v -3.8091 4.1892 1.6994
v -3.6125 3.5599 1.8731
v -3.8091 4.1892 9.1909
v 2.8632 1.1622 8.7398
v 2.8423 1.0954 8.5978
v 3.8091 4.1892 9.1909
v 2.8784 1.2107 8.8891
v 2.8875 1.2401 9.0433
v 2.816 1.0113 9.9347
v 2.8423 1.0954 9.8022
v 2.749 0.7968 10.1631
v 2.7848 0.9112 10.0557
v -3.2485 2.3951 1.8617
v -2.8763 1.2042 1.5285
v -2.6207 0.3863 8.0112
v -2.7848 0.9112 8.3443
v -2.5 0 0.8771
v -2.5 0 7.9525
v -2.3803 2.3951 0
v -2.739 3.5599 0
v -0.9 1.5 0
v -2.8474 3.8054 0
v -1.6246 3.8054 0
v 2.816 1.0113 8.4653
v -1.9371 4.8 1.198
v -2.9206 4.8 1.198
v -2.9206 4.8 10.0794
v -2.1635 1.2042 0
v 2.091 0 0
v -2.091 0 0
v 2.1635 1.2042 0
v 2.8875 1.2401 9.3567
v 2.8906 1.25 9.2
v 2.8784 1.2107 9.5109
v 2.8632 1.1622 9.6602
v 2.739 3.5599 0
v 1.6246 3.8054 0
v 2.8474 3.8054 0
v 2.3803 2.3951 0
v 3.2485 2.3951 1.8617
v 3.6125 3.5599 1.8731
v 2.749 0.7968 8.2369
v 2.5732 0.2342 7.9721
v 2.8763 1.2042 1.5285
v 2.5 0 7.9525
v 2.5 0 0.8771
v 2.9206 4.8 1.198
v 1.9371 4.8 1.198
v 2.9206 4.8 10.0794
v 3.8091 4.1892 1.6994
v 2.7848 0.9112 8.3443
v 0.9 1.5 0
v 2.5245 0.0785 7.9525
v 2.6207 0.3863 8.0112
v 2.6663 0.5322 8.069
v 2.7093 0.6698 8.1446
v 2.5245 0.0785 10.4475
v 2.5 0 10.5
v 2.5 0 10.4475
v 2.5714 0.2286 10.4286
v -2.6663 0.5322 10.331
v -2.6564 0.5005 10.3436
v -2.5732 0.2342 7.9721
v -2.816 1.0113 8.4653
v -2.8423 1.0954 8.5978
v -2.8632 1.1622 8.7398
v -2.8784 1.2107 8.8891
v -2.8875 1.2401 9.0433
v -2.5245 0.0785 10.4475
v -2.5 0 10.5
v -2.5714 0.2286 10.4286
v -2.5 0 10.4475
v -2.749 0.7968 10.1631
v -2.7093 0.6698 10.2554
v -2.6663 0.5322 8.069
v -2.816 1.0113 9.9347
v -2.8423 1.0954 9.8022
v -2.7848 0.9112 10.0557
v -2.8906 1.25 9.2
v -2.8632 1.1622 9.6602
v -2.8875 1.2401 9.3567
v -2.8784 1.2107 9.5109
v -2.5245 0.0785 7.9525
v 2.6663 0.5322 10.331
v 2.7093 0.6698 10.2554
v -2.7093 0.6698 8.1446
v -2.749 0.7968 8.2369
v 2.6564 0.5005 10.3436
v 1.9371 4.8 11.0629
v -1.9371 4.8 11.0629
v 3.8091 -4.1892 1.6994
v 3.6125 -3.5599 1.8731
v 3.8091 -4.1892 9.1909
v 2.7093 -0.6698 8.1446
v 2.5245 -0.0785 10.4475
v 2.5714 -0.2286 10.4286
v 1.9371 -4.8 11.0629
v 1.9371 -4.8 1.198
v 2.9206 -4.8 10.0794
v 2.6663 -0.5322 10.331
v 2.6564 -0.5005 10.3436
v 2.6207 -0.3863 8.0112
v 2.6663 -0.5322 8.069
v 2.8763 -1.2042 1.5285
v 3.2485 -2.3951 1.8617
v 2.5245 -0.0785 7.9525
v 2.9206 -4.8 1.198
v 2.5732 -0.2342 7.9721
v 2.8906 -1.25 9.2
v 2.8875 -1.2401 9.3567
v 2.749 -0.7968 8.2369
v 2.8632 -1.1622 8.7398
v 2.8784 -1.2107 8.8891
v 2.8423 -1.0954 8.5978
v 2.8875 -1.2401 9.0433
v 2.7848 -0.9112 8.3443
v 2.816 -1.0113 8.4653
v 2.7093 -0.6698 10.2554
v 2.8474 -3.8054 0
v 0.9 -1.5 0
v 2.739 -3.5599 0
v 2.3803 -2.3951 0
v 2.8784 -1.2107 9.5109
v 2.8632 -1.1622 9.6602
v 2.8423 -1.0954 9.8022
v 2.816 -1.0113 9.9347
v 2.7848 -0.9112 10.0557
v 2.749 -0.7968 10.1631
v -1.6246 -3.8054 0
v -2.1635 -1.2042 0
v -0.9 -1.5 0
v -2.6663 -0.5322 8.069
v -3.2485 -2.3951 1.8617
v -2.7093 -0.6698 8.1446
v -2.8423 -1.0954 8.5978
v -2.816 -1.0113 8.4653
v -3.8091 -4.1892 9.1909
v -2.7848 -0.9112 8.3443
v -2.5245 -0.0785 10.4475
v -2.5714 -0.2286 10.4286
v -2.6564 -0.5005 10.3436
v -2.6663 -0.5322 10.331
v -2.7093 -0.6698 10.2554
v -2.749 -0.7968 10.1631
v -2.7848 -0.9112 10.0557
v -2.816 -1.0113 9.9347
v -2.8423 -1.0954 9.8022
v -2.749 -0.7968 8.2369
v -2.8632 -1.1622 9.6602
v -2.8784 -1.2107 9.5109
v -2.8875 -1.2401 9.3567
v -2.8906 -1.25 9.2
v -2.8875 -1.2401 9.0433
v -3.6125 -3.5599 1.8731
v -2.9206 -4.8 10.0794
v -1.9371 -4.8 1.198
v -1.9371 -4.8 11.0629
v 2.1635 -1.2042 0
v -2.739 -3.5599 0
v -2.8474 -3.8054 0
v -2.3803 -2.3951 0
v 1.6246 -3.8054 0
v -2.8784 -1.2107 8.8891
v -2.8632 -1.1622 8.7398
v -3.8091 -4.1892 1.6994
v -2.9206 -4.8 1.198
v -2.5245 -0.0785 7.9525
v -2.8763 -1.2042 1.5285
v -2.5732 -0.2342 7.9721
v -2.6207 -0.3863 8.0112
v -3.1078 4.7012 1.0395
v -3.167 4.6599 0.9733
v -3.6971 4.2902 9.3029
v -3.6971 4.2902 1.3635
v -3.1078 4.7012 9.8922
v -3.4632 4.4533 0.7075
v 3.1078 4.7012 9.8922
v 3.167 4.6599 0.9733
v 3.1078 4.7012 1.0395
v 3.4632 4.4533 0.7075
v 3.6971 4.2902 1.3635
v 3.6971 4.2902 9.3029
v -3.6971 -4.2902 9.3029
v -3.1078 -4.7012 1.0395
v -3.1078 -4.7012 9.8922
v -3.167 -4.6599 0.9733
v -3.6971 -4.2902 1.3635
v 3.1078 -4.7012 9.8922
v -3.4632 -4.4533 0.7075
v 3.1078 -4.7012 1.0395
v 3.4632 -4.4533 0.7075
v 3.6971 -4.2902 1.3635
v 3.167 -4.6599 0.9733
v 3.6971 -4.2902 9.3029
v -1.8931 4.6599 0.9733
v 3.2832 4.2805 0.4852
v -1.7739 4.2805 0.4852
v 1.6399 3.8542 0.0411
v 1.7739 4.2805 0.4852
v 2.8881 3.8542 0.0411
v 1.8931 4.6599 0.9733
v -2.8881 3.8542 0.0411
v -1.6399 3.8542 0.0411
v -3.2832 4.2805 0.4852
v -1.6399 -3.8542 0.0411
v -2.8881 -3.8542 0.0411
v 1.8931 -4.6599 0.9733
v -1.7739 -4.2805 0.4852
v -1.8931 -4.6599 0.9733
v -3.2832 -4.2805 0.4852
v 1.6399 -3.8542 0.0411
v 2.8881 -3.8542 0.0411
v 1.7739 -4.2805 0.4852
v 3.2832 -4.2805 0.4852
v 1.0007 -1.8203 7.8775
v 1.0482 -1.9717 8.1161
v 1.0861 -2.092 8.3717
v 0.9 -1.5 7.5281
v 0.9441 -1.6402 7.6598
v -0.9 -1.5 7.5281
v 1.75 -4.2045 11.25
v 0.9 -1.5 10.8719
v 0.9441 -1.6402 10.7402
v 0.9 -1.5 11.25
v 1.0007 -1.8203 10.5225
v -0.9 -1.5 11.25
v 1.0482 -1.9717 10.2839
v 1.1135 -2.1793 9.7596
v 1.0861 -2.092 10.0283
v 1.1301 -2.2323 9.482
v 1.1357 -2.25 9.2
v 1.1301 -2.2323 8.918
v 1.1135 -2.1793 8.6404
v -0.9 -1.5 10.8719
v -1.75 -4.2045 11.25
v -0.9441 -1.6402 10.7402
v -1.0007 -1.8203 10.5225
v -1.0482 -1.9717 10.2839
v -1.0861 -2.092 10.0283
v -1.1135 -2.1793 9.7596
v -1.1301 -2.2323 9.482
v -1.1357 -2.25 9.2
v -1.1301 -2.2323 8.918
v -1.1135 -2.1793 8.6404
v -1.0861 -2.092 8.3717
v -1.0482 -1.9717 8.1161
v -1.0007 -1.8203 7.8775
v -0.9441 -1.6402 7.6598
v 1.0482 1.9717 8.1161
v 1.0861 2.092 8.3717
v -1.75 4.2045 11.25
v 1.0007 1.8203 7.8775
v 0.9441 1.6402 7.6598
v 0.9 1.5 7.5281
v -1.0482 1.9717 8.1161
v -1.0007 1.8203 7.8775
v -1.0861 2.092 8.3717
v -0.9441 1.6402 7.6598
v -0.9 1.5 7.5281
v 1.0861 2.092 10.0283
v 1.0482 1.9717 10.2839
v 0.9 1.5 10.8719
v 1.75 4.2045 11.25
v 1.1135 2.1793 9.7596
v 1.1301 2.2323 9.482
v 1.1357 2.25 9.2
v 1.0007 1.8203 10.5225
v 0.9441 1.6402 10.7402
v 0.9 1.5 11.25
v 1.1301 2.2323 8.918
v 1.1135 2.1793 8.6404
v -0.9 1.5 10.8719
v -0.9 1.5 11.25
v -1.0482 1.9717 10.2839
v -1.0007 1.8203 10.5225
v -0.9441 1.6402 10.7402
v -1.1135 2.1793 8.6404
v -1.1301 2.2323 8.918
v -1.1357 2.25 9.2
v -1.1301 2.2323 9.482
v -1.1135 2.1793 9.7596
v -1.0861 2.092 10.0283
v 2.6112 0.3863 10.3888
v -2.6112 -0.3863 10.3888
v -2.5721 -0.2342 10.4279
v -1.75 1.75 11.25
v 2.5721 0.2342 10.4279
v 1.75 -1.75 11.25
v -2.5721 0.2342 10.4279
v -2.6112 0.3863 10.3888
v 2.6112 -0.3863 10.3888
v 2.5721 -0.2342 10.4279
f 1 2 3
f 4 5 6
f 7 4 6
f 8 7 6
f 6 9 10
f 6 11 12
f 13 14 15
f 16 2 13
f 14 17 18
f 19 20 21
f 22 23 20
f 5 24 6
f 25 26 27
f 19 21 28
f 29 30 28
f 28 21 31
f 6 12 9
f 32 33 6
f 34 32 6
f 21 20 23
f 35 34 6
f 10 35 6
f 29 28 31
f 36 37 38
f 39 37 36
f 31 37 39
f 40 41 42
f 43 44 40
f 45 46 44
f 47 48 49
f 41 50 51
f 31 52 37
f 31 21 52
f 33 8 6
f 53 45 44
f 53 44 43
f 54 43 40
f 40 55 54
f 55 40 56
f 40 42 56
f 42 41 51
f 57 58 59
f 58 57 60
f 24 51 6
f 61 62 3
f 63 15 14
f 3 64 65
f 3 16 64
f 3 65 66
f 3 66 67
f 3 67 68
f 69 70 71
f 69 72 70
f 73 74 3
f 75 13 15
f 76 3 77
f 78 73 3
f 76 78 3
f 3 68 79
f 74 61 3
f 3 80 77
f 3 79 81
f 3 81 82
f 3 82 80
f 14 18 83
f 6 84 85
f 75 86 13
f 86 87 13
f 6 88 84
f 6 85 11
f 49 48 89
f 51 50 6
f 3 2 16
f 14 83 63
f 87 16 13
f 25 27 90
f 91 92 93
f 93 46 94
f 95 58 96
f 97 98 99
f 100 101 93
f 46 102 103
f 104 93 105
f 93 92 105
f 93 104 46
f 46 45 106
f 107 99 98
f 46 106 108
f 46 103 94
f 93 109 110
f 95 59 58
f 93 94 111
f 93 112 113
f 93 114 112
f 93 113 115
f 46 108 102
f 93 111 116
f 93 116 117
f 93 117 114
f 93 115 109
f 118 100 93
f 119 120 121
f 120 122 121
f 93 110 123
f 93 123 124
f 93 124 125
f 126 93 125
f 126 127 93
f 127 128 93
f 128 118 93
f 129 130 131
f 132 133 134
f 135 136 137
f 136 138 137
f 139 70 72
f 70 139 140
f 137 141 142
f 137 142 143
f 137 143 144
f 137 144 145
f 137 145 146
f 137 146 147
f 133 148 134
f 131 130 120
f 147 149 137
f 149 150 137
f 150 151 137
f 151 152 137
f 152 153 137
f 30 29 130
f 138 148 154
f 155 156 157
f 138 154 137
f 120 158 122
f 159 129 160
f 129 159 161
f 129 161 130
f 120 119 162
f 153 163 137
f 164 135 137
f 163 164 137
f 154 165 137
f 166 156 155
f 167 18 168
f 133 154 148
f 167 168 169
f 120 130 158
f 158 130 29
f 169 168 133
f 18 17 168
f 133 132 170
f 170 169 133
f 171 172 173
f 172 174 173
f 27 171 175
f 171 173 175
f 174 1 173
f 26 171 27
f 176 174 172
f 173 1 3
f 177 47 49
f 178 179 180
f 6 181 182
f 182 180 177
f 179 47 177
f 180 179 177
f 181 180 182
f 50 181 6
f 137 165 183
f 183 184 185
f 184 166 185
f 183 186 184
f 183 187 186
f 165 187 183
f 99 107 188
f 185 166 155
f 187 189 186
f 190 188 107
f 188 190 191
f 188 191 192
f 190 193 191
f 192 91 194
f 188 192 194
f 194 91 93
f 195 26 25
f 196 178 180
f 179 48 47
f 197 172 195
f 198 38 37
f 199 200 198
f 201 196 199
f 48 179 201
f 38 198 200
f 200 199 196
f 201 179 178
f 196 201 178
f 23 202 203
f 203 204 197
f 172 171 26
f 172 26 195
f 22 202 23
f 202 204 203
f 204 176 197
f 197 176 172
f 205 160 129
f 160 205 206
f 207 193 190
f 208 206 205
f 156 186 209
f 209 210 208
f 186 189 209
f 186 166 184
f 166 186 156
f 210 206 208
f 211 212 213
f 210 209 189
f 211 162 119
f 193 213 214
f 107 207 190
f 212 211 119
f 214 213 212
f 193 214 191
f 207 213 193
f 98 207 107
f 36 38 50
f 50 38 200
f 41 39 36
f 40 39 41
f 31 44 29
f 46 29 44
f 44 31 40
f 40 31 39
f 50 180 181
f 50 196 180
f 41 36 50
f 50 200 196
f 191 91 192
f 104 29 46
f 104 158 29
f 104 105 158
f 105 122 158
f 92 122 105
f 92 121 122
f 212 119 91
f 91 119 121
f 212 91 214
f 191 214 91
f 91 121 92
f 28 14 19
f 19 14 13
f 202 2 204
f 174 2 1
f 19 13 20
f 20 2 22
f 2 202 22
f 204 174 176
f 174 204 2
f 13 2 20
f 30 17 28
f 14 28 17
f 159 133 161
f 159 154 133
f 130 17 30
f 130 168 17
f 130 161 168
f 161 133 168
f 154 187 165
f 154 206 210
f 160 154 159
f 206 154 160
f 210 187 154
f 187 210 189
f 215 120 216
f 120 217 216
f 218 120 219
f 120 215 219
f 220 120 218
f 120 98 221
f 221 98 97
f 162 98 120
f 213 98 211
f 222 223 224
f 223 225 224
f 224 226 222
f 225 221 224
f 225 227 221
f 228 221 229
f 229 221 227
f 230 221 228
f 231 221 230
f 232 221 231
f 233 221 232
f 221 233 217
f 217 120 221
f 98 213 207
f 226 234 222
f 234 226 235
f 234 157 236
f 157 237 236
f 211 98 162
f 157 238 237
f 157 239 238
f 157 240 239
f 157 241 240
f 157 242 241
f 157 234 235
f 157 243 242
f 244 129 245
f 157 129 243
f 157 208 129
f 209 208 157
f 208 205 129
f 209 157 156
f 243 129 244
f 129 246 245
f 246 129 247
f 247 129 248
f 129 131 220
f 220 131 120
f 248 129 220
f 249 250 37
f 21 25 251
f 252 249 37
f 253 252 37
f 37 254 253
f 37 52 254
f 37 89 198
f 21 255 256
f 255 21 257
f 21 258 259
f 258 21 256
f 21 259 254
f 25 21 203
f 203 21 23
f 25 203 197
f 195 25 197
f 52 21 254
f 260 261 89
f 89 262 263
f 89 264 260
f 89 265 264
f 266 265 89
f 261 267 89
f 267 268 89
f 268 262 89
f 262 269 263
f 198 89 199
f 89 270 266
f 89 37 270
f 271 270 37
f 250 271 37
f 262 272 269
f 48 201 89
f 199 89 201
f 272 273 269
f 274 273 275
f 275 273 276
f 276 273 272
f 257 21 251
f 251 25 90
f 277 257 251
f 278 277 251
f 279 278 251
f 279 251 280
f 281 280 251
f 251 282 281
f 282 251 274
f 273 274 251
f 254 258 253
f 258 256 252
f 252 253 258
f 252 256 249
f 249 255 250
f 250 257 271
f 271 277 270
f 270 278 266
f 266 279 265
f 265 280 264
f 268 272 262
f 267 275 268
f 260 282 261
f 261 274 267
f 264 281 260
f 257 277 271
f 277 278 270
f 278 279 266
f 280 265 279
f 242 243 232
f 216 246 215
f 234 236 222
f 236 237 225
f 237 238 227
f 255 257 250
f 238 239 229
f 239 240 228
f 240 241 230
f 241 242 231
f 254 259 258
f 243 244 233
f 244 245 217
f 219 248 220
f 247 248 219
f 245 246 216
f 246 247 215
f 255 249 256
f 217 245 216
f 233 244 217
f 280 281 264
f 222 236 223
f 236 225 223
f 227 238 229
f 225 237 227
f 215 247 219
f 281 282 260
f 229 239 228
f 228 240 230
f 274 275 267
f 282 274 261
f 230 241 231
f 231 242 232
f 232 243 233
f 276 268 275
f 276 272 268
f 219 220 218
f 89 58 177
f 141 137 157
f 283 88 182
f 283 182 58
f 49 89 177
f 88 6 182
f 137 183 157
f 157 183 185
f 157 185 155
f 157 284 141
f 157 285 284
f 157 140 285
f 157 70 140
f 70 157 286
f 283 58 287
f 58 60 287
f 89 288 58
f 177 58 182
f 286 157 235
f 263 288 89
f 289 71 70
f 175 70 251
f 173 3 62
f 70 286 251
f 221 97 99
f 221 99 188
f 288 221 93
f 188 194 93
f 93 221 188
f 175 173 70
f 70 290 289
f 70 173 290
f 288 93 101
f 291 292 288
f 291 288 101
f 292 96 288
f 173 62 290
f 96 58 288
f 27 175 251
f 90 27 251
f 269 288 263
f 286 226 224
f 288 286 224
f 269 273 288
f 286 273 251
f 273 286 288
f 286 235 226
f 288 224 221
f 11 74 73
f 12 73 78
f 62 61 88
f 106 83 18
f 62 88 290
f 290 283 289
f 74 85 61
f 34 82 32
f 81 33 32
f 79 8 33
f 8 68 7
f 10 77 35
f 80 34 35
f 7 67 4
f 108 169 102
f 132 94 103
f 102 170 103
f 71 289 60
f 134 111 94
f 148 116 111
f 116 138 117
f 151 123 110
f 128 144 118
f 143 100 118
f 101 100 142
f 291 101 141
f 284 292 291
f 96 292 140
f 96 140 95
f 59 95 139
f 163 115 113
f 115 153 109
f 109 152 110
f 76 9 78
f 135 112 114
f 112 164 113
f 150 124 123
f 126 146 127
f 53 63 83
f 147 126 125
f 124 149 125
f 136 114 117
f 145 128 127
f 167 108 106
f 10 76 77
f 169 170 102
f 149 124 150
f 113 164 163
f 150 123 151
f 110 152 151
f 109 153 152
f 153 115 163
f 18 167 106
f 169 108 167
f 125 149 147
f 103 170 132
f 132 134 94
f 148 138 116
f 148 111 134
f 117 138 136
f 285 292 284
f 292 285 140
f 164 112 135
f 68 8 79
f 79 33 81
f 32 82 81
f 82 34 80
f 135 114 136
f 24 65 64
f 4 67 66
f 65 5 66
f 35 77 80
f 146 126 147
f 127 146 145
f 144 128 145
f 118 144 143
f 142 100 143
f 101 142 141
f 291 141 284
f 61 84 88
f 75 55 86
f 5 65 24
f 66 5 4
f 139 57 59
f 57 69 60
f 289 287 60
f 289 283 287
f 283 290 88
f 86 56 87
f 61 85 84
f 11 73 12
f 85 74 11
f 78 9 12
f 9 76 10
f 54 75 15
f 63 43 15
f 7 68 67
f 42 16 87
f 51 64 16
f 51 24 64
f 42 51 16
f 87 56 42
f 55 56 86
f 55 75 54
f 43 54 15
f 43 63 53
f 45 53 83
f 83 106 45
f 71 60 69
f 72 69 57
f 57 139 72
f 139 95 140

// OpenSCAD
// file: long_bow_tie.scad
tilt_level = 1.1;

include <include.scad>;
include <globals.scad>;

obj_leg = 12;

function scale_x() = 1;
function scale_z() = (male_dove_depth-0.2)/male_dove_depth;

length = 50;

// shifts the upper dove to right
_offset = 0;


//long_bow_tie();
//long_bow_tie(25);

//long_bow_tie_half(length);
//long_bow_tie_half(30);
//long_bow_tie_half_split(length);

long_bow_tie_split(length);
//long_bow_tie_split(30);



module bow_tie_master(length){
    dovetail_3d(
        male_dove_max_width,
        male_dove_min_width,
        male_dove_depth,
        length
    );
}

module long_bow_tie_unscaled(length) {

    module endcyl() {
        translate([0, 0, -3])
        cylinder(d=24, h=6, $fn=60);
    }

    module endtub() {
        rotate([0, 90, 0])
        translate([0, 0, -15/2])
        difference() {
            cylinder(d=20, h=15, $fn=60);
            cylinder(d=12, h=16, $fn=60);

            translate([-20, 0, -0.1])
            cube([40, 20, 16]);
        }
    }

    module _half() {

        translate([0, length/2, 0])
        difference() {
            intersection(){
                rotate([90, 0, 0])
                bow_tie_master(length);

                rotate([90, 0, 0])
                cylinder(r=5.8, h=length * 2);
            }
            translate([13, 5, 0])
            rotate([90, 0, 25])
            endcyl();

            translate([-13, 5, 0])
            rotate([90, 0, -25])
            endcyl();

            translate([13, -length - 5, 0])
            rotate([90, 0, -25])
            endcyl();

            translate([-13, -length - 5, 0])
            rotate([90, 0, 25])
            endcyl();

            translate([0, -length + 4.5, 0])
            endtub();

            translate([0, -4.5, 0])
            rotate([180, 0, 0])
            endtub();
        }
    }

    union() {
        translate([_offset, 0, 0])
        _half();

        mirror([0, 0, 1])
        _half();
    }
}

module long_bow_tie(
    length=length, scale_x=scale_x(), 
    scale_z=scale_z(), middle=false) {

    scale([scale_x, 1, scale_z]) {
        if(middle) {
            long_bow_tie_unscaled(length);
        } else {
            translate([0, 0, male_dove_depth])
            long_bow_tie_unscaled(length);
        }
    }
}

module split(length) {
    translate([0, 0, -length/2 - 1])
    linear_extrude(height=length + 2)
    polygon(points=[
        [0, -1.5], [0.9, -1.5], [2, -5],
        [-2, -5], [-0.9, -1.5]
    ]);
}

module long_bow_tie_split(
    length=length, scale_x=scale_x(),
    scale_z=scale_z(), middle=false
) {

    module _do_split() {
        rotate([90, 0, 0])
        difference() {
            rotate([-90, 0, 0])
            long_bow_tie(
                length, scale_x=scale_x,
                scale_z=scale_z, middle=true);

            split(length);

            translate([_offset, 0, 0])
            rotate([0, 0, 180])
            split(length);
        }
    }
        
    if (!middle) {
        translate([0, 0, scale_z * male_dove_depth])
        _do_split();
    } else {
        _do_split();
    }
}

module long_bow_tie_half(
    length=length, scale_x=scale_x(),
    scale_z=scale_z(), middle=true) {

    rotate([0, -90, 0])
    intersection() {
        long_bow_tie(length, middle=middle);

        translate([0, -length/2, -24/2])
        chamfered_cube(
            13, length, 24, 1
        );
    }
}

module long_bow_tie_half_split(
    length=length, scale_x=scale_x(),
    scale_z=scale_z()) {

    union() {
        intersection() {
            long_bow_tie_split(length,
                scale_x=scale_x,
                scale_z=scale_z,
                middle=true);
            translate([0, 0, -6/2])
            cube([10, length, 6], center=true);
        }
        cube([scale_x*male_dove_min_width, length,
              1.6], center=true);

        translate([((scale_x*male_dove_min_width)/2)/2, 0, 4/2])
        cube([(scale_x*male_dove_min_width)/2, length,
              4], center=true);

        translate([0, 0, 4])
        intersection() {
            long_bow_tie(
                length,scale_x=scale_x, scale_z=scale_z,
                middle=true);

            translate([5/2, 0, 5/2])
            cube([5, length, 5], center=true);
        }
    }
}
// file: globals.scad
/*
Most things in this file is represented as one millimeter, so keep that in mind while changing things.
Some of the setting are not mm but at variables that you can set, such as 2*x=2x and you are setting what x is.
I will try to specify when things are variables and not exact measurements.
*/

// printer slop
slop = 0.15;

obj_leg = 30;
leg_length = 5.5;
small_number = 0.001;
metal_core_rode_global = 5;


///////////////// number of holes /////////////////////
z_hole_number = 8;
other_holes = 8;

///////////////// Pins /////////////////////

//pins that poke out
ball_size = 10;
pin_height = 20;
pin_diameter = 6;


//holes
hole_ball_size = ball_size;
hole_pin_height = pin_height;
hole_pin_diameter = pin_diameter;

///////////////// Z THINGS /////////////////////

berring_slot_width = 7.5;
berring_slot_depth = 6.5;
metal_core_rode = 5;

///////////////// X THINGS /////////////////////

//male dove tails
male_dove_max_width=8;
male_dove_min_width=5;
male_dove_depth=5;
male_dove_height=obj_leg/2;

function scaled_male_dove_max_width() = male_dove_max_width - slop;
function scaled_male_dove_min_width() = male_dove_min_width - slop;
function scaled_male_dove_depth() = male_dove_depth - slop;

//female dove tails, this is found on the y mounts
girl_max_width=11;
girl_min_width=5;
girl_depth=5;
girl_height=obj_leg;


///////////////// Y THINGS /////////////////////
/*
The Y is so normal that all of those global variables at the top should change all of the setting in it, this section is set her incase there are variables set in the future development of this project.
*/

// stepper
motor_side_length = 43.2;
motor_bolt_hole_distance = 31;
motor_center_hole = 23;
motor_shaft_dia = 5;
motor_shaft_hole_dia = 5+2*slop;

// bolts etc.
bolt_hole_dia = 3+2*slop;
bolt_head_hole_dia = 5.8;

m4_bolt_hole_dia = 4+2*slop;
m4_bolt_head_hole_dia = 6.8+2*slop;


m3_nut_side = 5.65;
m3_nut_height = 2.3;
m4_nut_side = 6.85;
m4_nut_height = 3.1;

// threaded rod
lifter_rod_diam = 9.86;
hole_threaded_rod = lifter_rod_diam+2*slop;

// for the extensions
metal_rod_size = 9;
// main file
smoothing = 50;
tilt_level = 1.1;
include <include.scad>;
include <globals.scad>;
use <long_bow_tie.scad>;

// alter these the get properly fitting parts
scale_x = scale_x();
scale_z = scale_z();
length = 13;

obj_leg= 12;
$fn = smoothing;


bow_tie();
//bow_tie(brim=true);
//bow_tie_plate_20();


module bow_tie_master() {

    side = sqrt(13*13*2);

    union(){
        intersection(){
            rotate([0, 45, 0])
            cube([side, side, side], center=true);

            union() {
                rotate([-90, 0, 0])
                translate([0, -length/2, 0])
                long_bow_tie_split(
                    length, scale_x=scale_x,
                    scale_z=scale_z, middle=true
                );

                translate([0, 0, 13 - 3.8])
                rotate([90, 0, 90])
                cylinder(d=4.5, h=4, center=true);
            }
            cube([20, 20, 22.5], center=true);
        }
    }
}

module bow_tie(brim=false) {

    difference(){
        bow_tie_master();

        translate([0, 0, 13 - 3.8])
        rotate([90, 0, 90])
        cylinder(d=2.5, h=50, center=true);
    }

    if (brim) {
        translate([-5, -6, 0])
        cube([10, 12, .2]);
    }
}

module bow_tie_plate_20() {
    for (i = [0:4]) {
        for (j = [0:3]) {
            translate([i*9, j*11, 0])
            bow_tie(brim=true);
        }
    }
}
